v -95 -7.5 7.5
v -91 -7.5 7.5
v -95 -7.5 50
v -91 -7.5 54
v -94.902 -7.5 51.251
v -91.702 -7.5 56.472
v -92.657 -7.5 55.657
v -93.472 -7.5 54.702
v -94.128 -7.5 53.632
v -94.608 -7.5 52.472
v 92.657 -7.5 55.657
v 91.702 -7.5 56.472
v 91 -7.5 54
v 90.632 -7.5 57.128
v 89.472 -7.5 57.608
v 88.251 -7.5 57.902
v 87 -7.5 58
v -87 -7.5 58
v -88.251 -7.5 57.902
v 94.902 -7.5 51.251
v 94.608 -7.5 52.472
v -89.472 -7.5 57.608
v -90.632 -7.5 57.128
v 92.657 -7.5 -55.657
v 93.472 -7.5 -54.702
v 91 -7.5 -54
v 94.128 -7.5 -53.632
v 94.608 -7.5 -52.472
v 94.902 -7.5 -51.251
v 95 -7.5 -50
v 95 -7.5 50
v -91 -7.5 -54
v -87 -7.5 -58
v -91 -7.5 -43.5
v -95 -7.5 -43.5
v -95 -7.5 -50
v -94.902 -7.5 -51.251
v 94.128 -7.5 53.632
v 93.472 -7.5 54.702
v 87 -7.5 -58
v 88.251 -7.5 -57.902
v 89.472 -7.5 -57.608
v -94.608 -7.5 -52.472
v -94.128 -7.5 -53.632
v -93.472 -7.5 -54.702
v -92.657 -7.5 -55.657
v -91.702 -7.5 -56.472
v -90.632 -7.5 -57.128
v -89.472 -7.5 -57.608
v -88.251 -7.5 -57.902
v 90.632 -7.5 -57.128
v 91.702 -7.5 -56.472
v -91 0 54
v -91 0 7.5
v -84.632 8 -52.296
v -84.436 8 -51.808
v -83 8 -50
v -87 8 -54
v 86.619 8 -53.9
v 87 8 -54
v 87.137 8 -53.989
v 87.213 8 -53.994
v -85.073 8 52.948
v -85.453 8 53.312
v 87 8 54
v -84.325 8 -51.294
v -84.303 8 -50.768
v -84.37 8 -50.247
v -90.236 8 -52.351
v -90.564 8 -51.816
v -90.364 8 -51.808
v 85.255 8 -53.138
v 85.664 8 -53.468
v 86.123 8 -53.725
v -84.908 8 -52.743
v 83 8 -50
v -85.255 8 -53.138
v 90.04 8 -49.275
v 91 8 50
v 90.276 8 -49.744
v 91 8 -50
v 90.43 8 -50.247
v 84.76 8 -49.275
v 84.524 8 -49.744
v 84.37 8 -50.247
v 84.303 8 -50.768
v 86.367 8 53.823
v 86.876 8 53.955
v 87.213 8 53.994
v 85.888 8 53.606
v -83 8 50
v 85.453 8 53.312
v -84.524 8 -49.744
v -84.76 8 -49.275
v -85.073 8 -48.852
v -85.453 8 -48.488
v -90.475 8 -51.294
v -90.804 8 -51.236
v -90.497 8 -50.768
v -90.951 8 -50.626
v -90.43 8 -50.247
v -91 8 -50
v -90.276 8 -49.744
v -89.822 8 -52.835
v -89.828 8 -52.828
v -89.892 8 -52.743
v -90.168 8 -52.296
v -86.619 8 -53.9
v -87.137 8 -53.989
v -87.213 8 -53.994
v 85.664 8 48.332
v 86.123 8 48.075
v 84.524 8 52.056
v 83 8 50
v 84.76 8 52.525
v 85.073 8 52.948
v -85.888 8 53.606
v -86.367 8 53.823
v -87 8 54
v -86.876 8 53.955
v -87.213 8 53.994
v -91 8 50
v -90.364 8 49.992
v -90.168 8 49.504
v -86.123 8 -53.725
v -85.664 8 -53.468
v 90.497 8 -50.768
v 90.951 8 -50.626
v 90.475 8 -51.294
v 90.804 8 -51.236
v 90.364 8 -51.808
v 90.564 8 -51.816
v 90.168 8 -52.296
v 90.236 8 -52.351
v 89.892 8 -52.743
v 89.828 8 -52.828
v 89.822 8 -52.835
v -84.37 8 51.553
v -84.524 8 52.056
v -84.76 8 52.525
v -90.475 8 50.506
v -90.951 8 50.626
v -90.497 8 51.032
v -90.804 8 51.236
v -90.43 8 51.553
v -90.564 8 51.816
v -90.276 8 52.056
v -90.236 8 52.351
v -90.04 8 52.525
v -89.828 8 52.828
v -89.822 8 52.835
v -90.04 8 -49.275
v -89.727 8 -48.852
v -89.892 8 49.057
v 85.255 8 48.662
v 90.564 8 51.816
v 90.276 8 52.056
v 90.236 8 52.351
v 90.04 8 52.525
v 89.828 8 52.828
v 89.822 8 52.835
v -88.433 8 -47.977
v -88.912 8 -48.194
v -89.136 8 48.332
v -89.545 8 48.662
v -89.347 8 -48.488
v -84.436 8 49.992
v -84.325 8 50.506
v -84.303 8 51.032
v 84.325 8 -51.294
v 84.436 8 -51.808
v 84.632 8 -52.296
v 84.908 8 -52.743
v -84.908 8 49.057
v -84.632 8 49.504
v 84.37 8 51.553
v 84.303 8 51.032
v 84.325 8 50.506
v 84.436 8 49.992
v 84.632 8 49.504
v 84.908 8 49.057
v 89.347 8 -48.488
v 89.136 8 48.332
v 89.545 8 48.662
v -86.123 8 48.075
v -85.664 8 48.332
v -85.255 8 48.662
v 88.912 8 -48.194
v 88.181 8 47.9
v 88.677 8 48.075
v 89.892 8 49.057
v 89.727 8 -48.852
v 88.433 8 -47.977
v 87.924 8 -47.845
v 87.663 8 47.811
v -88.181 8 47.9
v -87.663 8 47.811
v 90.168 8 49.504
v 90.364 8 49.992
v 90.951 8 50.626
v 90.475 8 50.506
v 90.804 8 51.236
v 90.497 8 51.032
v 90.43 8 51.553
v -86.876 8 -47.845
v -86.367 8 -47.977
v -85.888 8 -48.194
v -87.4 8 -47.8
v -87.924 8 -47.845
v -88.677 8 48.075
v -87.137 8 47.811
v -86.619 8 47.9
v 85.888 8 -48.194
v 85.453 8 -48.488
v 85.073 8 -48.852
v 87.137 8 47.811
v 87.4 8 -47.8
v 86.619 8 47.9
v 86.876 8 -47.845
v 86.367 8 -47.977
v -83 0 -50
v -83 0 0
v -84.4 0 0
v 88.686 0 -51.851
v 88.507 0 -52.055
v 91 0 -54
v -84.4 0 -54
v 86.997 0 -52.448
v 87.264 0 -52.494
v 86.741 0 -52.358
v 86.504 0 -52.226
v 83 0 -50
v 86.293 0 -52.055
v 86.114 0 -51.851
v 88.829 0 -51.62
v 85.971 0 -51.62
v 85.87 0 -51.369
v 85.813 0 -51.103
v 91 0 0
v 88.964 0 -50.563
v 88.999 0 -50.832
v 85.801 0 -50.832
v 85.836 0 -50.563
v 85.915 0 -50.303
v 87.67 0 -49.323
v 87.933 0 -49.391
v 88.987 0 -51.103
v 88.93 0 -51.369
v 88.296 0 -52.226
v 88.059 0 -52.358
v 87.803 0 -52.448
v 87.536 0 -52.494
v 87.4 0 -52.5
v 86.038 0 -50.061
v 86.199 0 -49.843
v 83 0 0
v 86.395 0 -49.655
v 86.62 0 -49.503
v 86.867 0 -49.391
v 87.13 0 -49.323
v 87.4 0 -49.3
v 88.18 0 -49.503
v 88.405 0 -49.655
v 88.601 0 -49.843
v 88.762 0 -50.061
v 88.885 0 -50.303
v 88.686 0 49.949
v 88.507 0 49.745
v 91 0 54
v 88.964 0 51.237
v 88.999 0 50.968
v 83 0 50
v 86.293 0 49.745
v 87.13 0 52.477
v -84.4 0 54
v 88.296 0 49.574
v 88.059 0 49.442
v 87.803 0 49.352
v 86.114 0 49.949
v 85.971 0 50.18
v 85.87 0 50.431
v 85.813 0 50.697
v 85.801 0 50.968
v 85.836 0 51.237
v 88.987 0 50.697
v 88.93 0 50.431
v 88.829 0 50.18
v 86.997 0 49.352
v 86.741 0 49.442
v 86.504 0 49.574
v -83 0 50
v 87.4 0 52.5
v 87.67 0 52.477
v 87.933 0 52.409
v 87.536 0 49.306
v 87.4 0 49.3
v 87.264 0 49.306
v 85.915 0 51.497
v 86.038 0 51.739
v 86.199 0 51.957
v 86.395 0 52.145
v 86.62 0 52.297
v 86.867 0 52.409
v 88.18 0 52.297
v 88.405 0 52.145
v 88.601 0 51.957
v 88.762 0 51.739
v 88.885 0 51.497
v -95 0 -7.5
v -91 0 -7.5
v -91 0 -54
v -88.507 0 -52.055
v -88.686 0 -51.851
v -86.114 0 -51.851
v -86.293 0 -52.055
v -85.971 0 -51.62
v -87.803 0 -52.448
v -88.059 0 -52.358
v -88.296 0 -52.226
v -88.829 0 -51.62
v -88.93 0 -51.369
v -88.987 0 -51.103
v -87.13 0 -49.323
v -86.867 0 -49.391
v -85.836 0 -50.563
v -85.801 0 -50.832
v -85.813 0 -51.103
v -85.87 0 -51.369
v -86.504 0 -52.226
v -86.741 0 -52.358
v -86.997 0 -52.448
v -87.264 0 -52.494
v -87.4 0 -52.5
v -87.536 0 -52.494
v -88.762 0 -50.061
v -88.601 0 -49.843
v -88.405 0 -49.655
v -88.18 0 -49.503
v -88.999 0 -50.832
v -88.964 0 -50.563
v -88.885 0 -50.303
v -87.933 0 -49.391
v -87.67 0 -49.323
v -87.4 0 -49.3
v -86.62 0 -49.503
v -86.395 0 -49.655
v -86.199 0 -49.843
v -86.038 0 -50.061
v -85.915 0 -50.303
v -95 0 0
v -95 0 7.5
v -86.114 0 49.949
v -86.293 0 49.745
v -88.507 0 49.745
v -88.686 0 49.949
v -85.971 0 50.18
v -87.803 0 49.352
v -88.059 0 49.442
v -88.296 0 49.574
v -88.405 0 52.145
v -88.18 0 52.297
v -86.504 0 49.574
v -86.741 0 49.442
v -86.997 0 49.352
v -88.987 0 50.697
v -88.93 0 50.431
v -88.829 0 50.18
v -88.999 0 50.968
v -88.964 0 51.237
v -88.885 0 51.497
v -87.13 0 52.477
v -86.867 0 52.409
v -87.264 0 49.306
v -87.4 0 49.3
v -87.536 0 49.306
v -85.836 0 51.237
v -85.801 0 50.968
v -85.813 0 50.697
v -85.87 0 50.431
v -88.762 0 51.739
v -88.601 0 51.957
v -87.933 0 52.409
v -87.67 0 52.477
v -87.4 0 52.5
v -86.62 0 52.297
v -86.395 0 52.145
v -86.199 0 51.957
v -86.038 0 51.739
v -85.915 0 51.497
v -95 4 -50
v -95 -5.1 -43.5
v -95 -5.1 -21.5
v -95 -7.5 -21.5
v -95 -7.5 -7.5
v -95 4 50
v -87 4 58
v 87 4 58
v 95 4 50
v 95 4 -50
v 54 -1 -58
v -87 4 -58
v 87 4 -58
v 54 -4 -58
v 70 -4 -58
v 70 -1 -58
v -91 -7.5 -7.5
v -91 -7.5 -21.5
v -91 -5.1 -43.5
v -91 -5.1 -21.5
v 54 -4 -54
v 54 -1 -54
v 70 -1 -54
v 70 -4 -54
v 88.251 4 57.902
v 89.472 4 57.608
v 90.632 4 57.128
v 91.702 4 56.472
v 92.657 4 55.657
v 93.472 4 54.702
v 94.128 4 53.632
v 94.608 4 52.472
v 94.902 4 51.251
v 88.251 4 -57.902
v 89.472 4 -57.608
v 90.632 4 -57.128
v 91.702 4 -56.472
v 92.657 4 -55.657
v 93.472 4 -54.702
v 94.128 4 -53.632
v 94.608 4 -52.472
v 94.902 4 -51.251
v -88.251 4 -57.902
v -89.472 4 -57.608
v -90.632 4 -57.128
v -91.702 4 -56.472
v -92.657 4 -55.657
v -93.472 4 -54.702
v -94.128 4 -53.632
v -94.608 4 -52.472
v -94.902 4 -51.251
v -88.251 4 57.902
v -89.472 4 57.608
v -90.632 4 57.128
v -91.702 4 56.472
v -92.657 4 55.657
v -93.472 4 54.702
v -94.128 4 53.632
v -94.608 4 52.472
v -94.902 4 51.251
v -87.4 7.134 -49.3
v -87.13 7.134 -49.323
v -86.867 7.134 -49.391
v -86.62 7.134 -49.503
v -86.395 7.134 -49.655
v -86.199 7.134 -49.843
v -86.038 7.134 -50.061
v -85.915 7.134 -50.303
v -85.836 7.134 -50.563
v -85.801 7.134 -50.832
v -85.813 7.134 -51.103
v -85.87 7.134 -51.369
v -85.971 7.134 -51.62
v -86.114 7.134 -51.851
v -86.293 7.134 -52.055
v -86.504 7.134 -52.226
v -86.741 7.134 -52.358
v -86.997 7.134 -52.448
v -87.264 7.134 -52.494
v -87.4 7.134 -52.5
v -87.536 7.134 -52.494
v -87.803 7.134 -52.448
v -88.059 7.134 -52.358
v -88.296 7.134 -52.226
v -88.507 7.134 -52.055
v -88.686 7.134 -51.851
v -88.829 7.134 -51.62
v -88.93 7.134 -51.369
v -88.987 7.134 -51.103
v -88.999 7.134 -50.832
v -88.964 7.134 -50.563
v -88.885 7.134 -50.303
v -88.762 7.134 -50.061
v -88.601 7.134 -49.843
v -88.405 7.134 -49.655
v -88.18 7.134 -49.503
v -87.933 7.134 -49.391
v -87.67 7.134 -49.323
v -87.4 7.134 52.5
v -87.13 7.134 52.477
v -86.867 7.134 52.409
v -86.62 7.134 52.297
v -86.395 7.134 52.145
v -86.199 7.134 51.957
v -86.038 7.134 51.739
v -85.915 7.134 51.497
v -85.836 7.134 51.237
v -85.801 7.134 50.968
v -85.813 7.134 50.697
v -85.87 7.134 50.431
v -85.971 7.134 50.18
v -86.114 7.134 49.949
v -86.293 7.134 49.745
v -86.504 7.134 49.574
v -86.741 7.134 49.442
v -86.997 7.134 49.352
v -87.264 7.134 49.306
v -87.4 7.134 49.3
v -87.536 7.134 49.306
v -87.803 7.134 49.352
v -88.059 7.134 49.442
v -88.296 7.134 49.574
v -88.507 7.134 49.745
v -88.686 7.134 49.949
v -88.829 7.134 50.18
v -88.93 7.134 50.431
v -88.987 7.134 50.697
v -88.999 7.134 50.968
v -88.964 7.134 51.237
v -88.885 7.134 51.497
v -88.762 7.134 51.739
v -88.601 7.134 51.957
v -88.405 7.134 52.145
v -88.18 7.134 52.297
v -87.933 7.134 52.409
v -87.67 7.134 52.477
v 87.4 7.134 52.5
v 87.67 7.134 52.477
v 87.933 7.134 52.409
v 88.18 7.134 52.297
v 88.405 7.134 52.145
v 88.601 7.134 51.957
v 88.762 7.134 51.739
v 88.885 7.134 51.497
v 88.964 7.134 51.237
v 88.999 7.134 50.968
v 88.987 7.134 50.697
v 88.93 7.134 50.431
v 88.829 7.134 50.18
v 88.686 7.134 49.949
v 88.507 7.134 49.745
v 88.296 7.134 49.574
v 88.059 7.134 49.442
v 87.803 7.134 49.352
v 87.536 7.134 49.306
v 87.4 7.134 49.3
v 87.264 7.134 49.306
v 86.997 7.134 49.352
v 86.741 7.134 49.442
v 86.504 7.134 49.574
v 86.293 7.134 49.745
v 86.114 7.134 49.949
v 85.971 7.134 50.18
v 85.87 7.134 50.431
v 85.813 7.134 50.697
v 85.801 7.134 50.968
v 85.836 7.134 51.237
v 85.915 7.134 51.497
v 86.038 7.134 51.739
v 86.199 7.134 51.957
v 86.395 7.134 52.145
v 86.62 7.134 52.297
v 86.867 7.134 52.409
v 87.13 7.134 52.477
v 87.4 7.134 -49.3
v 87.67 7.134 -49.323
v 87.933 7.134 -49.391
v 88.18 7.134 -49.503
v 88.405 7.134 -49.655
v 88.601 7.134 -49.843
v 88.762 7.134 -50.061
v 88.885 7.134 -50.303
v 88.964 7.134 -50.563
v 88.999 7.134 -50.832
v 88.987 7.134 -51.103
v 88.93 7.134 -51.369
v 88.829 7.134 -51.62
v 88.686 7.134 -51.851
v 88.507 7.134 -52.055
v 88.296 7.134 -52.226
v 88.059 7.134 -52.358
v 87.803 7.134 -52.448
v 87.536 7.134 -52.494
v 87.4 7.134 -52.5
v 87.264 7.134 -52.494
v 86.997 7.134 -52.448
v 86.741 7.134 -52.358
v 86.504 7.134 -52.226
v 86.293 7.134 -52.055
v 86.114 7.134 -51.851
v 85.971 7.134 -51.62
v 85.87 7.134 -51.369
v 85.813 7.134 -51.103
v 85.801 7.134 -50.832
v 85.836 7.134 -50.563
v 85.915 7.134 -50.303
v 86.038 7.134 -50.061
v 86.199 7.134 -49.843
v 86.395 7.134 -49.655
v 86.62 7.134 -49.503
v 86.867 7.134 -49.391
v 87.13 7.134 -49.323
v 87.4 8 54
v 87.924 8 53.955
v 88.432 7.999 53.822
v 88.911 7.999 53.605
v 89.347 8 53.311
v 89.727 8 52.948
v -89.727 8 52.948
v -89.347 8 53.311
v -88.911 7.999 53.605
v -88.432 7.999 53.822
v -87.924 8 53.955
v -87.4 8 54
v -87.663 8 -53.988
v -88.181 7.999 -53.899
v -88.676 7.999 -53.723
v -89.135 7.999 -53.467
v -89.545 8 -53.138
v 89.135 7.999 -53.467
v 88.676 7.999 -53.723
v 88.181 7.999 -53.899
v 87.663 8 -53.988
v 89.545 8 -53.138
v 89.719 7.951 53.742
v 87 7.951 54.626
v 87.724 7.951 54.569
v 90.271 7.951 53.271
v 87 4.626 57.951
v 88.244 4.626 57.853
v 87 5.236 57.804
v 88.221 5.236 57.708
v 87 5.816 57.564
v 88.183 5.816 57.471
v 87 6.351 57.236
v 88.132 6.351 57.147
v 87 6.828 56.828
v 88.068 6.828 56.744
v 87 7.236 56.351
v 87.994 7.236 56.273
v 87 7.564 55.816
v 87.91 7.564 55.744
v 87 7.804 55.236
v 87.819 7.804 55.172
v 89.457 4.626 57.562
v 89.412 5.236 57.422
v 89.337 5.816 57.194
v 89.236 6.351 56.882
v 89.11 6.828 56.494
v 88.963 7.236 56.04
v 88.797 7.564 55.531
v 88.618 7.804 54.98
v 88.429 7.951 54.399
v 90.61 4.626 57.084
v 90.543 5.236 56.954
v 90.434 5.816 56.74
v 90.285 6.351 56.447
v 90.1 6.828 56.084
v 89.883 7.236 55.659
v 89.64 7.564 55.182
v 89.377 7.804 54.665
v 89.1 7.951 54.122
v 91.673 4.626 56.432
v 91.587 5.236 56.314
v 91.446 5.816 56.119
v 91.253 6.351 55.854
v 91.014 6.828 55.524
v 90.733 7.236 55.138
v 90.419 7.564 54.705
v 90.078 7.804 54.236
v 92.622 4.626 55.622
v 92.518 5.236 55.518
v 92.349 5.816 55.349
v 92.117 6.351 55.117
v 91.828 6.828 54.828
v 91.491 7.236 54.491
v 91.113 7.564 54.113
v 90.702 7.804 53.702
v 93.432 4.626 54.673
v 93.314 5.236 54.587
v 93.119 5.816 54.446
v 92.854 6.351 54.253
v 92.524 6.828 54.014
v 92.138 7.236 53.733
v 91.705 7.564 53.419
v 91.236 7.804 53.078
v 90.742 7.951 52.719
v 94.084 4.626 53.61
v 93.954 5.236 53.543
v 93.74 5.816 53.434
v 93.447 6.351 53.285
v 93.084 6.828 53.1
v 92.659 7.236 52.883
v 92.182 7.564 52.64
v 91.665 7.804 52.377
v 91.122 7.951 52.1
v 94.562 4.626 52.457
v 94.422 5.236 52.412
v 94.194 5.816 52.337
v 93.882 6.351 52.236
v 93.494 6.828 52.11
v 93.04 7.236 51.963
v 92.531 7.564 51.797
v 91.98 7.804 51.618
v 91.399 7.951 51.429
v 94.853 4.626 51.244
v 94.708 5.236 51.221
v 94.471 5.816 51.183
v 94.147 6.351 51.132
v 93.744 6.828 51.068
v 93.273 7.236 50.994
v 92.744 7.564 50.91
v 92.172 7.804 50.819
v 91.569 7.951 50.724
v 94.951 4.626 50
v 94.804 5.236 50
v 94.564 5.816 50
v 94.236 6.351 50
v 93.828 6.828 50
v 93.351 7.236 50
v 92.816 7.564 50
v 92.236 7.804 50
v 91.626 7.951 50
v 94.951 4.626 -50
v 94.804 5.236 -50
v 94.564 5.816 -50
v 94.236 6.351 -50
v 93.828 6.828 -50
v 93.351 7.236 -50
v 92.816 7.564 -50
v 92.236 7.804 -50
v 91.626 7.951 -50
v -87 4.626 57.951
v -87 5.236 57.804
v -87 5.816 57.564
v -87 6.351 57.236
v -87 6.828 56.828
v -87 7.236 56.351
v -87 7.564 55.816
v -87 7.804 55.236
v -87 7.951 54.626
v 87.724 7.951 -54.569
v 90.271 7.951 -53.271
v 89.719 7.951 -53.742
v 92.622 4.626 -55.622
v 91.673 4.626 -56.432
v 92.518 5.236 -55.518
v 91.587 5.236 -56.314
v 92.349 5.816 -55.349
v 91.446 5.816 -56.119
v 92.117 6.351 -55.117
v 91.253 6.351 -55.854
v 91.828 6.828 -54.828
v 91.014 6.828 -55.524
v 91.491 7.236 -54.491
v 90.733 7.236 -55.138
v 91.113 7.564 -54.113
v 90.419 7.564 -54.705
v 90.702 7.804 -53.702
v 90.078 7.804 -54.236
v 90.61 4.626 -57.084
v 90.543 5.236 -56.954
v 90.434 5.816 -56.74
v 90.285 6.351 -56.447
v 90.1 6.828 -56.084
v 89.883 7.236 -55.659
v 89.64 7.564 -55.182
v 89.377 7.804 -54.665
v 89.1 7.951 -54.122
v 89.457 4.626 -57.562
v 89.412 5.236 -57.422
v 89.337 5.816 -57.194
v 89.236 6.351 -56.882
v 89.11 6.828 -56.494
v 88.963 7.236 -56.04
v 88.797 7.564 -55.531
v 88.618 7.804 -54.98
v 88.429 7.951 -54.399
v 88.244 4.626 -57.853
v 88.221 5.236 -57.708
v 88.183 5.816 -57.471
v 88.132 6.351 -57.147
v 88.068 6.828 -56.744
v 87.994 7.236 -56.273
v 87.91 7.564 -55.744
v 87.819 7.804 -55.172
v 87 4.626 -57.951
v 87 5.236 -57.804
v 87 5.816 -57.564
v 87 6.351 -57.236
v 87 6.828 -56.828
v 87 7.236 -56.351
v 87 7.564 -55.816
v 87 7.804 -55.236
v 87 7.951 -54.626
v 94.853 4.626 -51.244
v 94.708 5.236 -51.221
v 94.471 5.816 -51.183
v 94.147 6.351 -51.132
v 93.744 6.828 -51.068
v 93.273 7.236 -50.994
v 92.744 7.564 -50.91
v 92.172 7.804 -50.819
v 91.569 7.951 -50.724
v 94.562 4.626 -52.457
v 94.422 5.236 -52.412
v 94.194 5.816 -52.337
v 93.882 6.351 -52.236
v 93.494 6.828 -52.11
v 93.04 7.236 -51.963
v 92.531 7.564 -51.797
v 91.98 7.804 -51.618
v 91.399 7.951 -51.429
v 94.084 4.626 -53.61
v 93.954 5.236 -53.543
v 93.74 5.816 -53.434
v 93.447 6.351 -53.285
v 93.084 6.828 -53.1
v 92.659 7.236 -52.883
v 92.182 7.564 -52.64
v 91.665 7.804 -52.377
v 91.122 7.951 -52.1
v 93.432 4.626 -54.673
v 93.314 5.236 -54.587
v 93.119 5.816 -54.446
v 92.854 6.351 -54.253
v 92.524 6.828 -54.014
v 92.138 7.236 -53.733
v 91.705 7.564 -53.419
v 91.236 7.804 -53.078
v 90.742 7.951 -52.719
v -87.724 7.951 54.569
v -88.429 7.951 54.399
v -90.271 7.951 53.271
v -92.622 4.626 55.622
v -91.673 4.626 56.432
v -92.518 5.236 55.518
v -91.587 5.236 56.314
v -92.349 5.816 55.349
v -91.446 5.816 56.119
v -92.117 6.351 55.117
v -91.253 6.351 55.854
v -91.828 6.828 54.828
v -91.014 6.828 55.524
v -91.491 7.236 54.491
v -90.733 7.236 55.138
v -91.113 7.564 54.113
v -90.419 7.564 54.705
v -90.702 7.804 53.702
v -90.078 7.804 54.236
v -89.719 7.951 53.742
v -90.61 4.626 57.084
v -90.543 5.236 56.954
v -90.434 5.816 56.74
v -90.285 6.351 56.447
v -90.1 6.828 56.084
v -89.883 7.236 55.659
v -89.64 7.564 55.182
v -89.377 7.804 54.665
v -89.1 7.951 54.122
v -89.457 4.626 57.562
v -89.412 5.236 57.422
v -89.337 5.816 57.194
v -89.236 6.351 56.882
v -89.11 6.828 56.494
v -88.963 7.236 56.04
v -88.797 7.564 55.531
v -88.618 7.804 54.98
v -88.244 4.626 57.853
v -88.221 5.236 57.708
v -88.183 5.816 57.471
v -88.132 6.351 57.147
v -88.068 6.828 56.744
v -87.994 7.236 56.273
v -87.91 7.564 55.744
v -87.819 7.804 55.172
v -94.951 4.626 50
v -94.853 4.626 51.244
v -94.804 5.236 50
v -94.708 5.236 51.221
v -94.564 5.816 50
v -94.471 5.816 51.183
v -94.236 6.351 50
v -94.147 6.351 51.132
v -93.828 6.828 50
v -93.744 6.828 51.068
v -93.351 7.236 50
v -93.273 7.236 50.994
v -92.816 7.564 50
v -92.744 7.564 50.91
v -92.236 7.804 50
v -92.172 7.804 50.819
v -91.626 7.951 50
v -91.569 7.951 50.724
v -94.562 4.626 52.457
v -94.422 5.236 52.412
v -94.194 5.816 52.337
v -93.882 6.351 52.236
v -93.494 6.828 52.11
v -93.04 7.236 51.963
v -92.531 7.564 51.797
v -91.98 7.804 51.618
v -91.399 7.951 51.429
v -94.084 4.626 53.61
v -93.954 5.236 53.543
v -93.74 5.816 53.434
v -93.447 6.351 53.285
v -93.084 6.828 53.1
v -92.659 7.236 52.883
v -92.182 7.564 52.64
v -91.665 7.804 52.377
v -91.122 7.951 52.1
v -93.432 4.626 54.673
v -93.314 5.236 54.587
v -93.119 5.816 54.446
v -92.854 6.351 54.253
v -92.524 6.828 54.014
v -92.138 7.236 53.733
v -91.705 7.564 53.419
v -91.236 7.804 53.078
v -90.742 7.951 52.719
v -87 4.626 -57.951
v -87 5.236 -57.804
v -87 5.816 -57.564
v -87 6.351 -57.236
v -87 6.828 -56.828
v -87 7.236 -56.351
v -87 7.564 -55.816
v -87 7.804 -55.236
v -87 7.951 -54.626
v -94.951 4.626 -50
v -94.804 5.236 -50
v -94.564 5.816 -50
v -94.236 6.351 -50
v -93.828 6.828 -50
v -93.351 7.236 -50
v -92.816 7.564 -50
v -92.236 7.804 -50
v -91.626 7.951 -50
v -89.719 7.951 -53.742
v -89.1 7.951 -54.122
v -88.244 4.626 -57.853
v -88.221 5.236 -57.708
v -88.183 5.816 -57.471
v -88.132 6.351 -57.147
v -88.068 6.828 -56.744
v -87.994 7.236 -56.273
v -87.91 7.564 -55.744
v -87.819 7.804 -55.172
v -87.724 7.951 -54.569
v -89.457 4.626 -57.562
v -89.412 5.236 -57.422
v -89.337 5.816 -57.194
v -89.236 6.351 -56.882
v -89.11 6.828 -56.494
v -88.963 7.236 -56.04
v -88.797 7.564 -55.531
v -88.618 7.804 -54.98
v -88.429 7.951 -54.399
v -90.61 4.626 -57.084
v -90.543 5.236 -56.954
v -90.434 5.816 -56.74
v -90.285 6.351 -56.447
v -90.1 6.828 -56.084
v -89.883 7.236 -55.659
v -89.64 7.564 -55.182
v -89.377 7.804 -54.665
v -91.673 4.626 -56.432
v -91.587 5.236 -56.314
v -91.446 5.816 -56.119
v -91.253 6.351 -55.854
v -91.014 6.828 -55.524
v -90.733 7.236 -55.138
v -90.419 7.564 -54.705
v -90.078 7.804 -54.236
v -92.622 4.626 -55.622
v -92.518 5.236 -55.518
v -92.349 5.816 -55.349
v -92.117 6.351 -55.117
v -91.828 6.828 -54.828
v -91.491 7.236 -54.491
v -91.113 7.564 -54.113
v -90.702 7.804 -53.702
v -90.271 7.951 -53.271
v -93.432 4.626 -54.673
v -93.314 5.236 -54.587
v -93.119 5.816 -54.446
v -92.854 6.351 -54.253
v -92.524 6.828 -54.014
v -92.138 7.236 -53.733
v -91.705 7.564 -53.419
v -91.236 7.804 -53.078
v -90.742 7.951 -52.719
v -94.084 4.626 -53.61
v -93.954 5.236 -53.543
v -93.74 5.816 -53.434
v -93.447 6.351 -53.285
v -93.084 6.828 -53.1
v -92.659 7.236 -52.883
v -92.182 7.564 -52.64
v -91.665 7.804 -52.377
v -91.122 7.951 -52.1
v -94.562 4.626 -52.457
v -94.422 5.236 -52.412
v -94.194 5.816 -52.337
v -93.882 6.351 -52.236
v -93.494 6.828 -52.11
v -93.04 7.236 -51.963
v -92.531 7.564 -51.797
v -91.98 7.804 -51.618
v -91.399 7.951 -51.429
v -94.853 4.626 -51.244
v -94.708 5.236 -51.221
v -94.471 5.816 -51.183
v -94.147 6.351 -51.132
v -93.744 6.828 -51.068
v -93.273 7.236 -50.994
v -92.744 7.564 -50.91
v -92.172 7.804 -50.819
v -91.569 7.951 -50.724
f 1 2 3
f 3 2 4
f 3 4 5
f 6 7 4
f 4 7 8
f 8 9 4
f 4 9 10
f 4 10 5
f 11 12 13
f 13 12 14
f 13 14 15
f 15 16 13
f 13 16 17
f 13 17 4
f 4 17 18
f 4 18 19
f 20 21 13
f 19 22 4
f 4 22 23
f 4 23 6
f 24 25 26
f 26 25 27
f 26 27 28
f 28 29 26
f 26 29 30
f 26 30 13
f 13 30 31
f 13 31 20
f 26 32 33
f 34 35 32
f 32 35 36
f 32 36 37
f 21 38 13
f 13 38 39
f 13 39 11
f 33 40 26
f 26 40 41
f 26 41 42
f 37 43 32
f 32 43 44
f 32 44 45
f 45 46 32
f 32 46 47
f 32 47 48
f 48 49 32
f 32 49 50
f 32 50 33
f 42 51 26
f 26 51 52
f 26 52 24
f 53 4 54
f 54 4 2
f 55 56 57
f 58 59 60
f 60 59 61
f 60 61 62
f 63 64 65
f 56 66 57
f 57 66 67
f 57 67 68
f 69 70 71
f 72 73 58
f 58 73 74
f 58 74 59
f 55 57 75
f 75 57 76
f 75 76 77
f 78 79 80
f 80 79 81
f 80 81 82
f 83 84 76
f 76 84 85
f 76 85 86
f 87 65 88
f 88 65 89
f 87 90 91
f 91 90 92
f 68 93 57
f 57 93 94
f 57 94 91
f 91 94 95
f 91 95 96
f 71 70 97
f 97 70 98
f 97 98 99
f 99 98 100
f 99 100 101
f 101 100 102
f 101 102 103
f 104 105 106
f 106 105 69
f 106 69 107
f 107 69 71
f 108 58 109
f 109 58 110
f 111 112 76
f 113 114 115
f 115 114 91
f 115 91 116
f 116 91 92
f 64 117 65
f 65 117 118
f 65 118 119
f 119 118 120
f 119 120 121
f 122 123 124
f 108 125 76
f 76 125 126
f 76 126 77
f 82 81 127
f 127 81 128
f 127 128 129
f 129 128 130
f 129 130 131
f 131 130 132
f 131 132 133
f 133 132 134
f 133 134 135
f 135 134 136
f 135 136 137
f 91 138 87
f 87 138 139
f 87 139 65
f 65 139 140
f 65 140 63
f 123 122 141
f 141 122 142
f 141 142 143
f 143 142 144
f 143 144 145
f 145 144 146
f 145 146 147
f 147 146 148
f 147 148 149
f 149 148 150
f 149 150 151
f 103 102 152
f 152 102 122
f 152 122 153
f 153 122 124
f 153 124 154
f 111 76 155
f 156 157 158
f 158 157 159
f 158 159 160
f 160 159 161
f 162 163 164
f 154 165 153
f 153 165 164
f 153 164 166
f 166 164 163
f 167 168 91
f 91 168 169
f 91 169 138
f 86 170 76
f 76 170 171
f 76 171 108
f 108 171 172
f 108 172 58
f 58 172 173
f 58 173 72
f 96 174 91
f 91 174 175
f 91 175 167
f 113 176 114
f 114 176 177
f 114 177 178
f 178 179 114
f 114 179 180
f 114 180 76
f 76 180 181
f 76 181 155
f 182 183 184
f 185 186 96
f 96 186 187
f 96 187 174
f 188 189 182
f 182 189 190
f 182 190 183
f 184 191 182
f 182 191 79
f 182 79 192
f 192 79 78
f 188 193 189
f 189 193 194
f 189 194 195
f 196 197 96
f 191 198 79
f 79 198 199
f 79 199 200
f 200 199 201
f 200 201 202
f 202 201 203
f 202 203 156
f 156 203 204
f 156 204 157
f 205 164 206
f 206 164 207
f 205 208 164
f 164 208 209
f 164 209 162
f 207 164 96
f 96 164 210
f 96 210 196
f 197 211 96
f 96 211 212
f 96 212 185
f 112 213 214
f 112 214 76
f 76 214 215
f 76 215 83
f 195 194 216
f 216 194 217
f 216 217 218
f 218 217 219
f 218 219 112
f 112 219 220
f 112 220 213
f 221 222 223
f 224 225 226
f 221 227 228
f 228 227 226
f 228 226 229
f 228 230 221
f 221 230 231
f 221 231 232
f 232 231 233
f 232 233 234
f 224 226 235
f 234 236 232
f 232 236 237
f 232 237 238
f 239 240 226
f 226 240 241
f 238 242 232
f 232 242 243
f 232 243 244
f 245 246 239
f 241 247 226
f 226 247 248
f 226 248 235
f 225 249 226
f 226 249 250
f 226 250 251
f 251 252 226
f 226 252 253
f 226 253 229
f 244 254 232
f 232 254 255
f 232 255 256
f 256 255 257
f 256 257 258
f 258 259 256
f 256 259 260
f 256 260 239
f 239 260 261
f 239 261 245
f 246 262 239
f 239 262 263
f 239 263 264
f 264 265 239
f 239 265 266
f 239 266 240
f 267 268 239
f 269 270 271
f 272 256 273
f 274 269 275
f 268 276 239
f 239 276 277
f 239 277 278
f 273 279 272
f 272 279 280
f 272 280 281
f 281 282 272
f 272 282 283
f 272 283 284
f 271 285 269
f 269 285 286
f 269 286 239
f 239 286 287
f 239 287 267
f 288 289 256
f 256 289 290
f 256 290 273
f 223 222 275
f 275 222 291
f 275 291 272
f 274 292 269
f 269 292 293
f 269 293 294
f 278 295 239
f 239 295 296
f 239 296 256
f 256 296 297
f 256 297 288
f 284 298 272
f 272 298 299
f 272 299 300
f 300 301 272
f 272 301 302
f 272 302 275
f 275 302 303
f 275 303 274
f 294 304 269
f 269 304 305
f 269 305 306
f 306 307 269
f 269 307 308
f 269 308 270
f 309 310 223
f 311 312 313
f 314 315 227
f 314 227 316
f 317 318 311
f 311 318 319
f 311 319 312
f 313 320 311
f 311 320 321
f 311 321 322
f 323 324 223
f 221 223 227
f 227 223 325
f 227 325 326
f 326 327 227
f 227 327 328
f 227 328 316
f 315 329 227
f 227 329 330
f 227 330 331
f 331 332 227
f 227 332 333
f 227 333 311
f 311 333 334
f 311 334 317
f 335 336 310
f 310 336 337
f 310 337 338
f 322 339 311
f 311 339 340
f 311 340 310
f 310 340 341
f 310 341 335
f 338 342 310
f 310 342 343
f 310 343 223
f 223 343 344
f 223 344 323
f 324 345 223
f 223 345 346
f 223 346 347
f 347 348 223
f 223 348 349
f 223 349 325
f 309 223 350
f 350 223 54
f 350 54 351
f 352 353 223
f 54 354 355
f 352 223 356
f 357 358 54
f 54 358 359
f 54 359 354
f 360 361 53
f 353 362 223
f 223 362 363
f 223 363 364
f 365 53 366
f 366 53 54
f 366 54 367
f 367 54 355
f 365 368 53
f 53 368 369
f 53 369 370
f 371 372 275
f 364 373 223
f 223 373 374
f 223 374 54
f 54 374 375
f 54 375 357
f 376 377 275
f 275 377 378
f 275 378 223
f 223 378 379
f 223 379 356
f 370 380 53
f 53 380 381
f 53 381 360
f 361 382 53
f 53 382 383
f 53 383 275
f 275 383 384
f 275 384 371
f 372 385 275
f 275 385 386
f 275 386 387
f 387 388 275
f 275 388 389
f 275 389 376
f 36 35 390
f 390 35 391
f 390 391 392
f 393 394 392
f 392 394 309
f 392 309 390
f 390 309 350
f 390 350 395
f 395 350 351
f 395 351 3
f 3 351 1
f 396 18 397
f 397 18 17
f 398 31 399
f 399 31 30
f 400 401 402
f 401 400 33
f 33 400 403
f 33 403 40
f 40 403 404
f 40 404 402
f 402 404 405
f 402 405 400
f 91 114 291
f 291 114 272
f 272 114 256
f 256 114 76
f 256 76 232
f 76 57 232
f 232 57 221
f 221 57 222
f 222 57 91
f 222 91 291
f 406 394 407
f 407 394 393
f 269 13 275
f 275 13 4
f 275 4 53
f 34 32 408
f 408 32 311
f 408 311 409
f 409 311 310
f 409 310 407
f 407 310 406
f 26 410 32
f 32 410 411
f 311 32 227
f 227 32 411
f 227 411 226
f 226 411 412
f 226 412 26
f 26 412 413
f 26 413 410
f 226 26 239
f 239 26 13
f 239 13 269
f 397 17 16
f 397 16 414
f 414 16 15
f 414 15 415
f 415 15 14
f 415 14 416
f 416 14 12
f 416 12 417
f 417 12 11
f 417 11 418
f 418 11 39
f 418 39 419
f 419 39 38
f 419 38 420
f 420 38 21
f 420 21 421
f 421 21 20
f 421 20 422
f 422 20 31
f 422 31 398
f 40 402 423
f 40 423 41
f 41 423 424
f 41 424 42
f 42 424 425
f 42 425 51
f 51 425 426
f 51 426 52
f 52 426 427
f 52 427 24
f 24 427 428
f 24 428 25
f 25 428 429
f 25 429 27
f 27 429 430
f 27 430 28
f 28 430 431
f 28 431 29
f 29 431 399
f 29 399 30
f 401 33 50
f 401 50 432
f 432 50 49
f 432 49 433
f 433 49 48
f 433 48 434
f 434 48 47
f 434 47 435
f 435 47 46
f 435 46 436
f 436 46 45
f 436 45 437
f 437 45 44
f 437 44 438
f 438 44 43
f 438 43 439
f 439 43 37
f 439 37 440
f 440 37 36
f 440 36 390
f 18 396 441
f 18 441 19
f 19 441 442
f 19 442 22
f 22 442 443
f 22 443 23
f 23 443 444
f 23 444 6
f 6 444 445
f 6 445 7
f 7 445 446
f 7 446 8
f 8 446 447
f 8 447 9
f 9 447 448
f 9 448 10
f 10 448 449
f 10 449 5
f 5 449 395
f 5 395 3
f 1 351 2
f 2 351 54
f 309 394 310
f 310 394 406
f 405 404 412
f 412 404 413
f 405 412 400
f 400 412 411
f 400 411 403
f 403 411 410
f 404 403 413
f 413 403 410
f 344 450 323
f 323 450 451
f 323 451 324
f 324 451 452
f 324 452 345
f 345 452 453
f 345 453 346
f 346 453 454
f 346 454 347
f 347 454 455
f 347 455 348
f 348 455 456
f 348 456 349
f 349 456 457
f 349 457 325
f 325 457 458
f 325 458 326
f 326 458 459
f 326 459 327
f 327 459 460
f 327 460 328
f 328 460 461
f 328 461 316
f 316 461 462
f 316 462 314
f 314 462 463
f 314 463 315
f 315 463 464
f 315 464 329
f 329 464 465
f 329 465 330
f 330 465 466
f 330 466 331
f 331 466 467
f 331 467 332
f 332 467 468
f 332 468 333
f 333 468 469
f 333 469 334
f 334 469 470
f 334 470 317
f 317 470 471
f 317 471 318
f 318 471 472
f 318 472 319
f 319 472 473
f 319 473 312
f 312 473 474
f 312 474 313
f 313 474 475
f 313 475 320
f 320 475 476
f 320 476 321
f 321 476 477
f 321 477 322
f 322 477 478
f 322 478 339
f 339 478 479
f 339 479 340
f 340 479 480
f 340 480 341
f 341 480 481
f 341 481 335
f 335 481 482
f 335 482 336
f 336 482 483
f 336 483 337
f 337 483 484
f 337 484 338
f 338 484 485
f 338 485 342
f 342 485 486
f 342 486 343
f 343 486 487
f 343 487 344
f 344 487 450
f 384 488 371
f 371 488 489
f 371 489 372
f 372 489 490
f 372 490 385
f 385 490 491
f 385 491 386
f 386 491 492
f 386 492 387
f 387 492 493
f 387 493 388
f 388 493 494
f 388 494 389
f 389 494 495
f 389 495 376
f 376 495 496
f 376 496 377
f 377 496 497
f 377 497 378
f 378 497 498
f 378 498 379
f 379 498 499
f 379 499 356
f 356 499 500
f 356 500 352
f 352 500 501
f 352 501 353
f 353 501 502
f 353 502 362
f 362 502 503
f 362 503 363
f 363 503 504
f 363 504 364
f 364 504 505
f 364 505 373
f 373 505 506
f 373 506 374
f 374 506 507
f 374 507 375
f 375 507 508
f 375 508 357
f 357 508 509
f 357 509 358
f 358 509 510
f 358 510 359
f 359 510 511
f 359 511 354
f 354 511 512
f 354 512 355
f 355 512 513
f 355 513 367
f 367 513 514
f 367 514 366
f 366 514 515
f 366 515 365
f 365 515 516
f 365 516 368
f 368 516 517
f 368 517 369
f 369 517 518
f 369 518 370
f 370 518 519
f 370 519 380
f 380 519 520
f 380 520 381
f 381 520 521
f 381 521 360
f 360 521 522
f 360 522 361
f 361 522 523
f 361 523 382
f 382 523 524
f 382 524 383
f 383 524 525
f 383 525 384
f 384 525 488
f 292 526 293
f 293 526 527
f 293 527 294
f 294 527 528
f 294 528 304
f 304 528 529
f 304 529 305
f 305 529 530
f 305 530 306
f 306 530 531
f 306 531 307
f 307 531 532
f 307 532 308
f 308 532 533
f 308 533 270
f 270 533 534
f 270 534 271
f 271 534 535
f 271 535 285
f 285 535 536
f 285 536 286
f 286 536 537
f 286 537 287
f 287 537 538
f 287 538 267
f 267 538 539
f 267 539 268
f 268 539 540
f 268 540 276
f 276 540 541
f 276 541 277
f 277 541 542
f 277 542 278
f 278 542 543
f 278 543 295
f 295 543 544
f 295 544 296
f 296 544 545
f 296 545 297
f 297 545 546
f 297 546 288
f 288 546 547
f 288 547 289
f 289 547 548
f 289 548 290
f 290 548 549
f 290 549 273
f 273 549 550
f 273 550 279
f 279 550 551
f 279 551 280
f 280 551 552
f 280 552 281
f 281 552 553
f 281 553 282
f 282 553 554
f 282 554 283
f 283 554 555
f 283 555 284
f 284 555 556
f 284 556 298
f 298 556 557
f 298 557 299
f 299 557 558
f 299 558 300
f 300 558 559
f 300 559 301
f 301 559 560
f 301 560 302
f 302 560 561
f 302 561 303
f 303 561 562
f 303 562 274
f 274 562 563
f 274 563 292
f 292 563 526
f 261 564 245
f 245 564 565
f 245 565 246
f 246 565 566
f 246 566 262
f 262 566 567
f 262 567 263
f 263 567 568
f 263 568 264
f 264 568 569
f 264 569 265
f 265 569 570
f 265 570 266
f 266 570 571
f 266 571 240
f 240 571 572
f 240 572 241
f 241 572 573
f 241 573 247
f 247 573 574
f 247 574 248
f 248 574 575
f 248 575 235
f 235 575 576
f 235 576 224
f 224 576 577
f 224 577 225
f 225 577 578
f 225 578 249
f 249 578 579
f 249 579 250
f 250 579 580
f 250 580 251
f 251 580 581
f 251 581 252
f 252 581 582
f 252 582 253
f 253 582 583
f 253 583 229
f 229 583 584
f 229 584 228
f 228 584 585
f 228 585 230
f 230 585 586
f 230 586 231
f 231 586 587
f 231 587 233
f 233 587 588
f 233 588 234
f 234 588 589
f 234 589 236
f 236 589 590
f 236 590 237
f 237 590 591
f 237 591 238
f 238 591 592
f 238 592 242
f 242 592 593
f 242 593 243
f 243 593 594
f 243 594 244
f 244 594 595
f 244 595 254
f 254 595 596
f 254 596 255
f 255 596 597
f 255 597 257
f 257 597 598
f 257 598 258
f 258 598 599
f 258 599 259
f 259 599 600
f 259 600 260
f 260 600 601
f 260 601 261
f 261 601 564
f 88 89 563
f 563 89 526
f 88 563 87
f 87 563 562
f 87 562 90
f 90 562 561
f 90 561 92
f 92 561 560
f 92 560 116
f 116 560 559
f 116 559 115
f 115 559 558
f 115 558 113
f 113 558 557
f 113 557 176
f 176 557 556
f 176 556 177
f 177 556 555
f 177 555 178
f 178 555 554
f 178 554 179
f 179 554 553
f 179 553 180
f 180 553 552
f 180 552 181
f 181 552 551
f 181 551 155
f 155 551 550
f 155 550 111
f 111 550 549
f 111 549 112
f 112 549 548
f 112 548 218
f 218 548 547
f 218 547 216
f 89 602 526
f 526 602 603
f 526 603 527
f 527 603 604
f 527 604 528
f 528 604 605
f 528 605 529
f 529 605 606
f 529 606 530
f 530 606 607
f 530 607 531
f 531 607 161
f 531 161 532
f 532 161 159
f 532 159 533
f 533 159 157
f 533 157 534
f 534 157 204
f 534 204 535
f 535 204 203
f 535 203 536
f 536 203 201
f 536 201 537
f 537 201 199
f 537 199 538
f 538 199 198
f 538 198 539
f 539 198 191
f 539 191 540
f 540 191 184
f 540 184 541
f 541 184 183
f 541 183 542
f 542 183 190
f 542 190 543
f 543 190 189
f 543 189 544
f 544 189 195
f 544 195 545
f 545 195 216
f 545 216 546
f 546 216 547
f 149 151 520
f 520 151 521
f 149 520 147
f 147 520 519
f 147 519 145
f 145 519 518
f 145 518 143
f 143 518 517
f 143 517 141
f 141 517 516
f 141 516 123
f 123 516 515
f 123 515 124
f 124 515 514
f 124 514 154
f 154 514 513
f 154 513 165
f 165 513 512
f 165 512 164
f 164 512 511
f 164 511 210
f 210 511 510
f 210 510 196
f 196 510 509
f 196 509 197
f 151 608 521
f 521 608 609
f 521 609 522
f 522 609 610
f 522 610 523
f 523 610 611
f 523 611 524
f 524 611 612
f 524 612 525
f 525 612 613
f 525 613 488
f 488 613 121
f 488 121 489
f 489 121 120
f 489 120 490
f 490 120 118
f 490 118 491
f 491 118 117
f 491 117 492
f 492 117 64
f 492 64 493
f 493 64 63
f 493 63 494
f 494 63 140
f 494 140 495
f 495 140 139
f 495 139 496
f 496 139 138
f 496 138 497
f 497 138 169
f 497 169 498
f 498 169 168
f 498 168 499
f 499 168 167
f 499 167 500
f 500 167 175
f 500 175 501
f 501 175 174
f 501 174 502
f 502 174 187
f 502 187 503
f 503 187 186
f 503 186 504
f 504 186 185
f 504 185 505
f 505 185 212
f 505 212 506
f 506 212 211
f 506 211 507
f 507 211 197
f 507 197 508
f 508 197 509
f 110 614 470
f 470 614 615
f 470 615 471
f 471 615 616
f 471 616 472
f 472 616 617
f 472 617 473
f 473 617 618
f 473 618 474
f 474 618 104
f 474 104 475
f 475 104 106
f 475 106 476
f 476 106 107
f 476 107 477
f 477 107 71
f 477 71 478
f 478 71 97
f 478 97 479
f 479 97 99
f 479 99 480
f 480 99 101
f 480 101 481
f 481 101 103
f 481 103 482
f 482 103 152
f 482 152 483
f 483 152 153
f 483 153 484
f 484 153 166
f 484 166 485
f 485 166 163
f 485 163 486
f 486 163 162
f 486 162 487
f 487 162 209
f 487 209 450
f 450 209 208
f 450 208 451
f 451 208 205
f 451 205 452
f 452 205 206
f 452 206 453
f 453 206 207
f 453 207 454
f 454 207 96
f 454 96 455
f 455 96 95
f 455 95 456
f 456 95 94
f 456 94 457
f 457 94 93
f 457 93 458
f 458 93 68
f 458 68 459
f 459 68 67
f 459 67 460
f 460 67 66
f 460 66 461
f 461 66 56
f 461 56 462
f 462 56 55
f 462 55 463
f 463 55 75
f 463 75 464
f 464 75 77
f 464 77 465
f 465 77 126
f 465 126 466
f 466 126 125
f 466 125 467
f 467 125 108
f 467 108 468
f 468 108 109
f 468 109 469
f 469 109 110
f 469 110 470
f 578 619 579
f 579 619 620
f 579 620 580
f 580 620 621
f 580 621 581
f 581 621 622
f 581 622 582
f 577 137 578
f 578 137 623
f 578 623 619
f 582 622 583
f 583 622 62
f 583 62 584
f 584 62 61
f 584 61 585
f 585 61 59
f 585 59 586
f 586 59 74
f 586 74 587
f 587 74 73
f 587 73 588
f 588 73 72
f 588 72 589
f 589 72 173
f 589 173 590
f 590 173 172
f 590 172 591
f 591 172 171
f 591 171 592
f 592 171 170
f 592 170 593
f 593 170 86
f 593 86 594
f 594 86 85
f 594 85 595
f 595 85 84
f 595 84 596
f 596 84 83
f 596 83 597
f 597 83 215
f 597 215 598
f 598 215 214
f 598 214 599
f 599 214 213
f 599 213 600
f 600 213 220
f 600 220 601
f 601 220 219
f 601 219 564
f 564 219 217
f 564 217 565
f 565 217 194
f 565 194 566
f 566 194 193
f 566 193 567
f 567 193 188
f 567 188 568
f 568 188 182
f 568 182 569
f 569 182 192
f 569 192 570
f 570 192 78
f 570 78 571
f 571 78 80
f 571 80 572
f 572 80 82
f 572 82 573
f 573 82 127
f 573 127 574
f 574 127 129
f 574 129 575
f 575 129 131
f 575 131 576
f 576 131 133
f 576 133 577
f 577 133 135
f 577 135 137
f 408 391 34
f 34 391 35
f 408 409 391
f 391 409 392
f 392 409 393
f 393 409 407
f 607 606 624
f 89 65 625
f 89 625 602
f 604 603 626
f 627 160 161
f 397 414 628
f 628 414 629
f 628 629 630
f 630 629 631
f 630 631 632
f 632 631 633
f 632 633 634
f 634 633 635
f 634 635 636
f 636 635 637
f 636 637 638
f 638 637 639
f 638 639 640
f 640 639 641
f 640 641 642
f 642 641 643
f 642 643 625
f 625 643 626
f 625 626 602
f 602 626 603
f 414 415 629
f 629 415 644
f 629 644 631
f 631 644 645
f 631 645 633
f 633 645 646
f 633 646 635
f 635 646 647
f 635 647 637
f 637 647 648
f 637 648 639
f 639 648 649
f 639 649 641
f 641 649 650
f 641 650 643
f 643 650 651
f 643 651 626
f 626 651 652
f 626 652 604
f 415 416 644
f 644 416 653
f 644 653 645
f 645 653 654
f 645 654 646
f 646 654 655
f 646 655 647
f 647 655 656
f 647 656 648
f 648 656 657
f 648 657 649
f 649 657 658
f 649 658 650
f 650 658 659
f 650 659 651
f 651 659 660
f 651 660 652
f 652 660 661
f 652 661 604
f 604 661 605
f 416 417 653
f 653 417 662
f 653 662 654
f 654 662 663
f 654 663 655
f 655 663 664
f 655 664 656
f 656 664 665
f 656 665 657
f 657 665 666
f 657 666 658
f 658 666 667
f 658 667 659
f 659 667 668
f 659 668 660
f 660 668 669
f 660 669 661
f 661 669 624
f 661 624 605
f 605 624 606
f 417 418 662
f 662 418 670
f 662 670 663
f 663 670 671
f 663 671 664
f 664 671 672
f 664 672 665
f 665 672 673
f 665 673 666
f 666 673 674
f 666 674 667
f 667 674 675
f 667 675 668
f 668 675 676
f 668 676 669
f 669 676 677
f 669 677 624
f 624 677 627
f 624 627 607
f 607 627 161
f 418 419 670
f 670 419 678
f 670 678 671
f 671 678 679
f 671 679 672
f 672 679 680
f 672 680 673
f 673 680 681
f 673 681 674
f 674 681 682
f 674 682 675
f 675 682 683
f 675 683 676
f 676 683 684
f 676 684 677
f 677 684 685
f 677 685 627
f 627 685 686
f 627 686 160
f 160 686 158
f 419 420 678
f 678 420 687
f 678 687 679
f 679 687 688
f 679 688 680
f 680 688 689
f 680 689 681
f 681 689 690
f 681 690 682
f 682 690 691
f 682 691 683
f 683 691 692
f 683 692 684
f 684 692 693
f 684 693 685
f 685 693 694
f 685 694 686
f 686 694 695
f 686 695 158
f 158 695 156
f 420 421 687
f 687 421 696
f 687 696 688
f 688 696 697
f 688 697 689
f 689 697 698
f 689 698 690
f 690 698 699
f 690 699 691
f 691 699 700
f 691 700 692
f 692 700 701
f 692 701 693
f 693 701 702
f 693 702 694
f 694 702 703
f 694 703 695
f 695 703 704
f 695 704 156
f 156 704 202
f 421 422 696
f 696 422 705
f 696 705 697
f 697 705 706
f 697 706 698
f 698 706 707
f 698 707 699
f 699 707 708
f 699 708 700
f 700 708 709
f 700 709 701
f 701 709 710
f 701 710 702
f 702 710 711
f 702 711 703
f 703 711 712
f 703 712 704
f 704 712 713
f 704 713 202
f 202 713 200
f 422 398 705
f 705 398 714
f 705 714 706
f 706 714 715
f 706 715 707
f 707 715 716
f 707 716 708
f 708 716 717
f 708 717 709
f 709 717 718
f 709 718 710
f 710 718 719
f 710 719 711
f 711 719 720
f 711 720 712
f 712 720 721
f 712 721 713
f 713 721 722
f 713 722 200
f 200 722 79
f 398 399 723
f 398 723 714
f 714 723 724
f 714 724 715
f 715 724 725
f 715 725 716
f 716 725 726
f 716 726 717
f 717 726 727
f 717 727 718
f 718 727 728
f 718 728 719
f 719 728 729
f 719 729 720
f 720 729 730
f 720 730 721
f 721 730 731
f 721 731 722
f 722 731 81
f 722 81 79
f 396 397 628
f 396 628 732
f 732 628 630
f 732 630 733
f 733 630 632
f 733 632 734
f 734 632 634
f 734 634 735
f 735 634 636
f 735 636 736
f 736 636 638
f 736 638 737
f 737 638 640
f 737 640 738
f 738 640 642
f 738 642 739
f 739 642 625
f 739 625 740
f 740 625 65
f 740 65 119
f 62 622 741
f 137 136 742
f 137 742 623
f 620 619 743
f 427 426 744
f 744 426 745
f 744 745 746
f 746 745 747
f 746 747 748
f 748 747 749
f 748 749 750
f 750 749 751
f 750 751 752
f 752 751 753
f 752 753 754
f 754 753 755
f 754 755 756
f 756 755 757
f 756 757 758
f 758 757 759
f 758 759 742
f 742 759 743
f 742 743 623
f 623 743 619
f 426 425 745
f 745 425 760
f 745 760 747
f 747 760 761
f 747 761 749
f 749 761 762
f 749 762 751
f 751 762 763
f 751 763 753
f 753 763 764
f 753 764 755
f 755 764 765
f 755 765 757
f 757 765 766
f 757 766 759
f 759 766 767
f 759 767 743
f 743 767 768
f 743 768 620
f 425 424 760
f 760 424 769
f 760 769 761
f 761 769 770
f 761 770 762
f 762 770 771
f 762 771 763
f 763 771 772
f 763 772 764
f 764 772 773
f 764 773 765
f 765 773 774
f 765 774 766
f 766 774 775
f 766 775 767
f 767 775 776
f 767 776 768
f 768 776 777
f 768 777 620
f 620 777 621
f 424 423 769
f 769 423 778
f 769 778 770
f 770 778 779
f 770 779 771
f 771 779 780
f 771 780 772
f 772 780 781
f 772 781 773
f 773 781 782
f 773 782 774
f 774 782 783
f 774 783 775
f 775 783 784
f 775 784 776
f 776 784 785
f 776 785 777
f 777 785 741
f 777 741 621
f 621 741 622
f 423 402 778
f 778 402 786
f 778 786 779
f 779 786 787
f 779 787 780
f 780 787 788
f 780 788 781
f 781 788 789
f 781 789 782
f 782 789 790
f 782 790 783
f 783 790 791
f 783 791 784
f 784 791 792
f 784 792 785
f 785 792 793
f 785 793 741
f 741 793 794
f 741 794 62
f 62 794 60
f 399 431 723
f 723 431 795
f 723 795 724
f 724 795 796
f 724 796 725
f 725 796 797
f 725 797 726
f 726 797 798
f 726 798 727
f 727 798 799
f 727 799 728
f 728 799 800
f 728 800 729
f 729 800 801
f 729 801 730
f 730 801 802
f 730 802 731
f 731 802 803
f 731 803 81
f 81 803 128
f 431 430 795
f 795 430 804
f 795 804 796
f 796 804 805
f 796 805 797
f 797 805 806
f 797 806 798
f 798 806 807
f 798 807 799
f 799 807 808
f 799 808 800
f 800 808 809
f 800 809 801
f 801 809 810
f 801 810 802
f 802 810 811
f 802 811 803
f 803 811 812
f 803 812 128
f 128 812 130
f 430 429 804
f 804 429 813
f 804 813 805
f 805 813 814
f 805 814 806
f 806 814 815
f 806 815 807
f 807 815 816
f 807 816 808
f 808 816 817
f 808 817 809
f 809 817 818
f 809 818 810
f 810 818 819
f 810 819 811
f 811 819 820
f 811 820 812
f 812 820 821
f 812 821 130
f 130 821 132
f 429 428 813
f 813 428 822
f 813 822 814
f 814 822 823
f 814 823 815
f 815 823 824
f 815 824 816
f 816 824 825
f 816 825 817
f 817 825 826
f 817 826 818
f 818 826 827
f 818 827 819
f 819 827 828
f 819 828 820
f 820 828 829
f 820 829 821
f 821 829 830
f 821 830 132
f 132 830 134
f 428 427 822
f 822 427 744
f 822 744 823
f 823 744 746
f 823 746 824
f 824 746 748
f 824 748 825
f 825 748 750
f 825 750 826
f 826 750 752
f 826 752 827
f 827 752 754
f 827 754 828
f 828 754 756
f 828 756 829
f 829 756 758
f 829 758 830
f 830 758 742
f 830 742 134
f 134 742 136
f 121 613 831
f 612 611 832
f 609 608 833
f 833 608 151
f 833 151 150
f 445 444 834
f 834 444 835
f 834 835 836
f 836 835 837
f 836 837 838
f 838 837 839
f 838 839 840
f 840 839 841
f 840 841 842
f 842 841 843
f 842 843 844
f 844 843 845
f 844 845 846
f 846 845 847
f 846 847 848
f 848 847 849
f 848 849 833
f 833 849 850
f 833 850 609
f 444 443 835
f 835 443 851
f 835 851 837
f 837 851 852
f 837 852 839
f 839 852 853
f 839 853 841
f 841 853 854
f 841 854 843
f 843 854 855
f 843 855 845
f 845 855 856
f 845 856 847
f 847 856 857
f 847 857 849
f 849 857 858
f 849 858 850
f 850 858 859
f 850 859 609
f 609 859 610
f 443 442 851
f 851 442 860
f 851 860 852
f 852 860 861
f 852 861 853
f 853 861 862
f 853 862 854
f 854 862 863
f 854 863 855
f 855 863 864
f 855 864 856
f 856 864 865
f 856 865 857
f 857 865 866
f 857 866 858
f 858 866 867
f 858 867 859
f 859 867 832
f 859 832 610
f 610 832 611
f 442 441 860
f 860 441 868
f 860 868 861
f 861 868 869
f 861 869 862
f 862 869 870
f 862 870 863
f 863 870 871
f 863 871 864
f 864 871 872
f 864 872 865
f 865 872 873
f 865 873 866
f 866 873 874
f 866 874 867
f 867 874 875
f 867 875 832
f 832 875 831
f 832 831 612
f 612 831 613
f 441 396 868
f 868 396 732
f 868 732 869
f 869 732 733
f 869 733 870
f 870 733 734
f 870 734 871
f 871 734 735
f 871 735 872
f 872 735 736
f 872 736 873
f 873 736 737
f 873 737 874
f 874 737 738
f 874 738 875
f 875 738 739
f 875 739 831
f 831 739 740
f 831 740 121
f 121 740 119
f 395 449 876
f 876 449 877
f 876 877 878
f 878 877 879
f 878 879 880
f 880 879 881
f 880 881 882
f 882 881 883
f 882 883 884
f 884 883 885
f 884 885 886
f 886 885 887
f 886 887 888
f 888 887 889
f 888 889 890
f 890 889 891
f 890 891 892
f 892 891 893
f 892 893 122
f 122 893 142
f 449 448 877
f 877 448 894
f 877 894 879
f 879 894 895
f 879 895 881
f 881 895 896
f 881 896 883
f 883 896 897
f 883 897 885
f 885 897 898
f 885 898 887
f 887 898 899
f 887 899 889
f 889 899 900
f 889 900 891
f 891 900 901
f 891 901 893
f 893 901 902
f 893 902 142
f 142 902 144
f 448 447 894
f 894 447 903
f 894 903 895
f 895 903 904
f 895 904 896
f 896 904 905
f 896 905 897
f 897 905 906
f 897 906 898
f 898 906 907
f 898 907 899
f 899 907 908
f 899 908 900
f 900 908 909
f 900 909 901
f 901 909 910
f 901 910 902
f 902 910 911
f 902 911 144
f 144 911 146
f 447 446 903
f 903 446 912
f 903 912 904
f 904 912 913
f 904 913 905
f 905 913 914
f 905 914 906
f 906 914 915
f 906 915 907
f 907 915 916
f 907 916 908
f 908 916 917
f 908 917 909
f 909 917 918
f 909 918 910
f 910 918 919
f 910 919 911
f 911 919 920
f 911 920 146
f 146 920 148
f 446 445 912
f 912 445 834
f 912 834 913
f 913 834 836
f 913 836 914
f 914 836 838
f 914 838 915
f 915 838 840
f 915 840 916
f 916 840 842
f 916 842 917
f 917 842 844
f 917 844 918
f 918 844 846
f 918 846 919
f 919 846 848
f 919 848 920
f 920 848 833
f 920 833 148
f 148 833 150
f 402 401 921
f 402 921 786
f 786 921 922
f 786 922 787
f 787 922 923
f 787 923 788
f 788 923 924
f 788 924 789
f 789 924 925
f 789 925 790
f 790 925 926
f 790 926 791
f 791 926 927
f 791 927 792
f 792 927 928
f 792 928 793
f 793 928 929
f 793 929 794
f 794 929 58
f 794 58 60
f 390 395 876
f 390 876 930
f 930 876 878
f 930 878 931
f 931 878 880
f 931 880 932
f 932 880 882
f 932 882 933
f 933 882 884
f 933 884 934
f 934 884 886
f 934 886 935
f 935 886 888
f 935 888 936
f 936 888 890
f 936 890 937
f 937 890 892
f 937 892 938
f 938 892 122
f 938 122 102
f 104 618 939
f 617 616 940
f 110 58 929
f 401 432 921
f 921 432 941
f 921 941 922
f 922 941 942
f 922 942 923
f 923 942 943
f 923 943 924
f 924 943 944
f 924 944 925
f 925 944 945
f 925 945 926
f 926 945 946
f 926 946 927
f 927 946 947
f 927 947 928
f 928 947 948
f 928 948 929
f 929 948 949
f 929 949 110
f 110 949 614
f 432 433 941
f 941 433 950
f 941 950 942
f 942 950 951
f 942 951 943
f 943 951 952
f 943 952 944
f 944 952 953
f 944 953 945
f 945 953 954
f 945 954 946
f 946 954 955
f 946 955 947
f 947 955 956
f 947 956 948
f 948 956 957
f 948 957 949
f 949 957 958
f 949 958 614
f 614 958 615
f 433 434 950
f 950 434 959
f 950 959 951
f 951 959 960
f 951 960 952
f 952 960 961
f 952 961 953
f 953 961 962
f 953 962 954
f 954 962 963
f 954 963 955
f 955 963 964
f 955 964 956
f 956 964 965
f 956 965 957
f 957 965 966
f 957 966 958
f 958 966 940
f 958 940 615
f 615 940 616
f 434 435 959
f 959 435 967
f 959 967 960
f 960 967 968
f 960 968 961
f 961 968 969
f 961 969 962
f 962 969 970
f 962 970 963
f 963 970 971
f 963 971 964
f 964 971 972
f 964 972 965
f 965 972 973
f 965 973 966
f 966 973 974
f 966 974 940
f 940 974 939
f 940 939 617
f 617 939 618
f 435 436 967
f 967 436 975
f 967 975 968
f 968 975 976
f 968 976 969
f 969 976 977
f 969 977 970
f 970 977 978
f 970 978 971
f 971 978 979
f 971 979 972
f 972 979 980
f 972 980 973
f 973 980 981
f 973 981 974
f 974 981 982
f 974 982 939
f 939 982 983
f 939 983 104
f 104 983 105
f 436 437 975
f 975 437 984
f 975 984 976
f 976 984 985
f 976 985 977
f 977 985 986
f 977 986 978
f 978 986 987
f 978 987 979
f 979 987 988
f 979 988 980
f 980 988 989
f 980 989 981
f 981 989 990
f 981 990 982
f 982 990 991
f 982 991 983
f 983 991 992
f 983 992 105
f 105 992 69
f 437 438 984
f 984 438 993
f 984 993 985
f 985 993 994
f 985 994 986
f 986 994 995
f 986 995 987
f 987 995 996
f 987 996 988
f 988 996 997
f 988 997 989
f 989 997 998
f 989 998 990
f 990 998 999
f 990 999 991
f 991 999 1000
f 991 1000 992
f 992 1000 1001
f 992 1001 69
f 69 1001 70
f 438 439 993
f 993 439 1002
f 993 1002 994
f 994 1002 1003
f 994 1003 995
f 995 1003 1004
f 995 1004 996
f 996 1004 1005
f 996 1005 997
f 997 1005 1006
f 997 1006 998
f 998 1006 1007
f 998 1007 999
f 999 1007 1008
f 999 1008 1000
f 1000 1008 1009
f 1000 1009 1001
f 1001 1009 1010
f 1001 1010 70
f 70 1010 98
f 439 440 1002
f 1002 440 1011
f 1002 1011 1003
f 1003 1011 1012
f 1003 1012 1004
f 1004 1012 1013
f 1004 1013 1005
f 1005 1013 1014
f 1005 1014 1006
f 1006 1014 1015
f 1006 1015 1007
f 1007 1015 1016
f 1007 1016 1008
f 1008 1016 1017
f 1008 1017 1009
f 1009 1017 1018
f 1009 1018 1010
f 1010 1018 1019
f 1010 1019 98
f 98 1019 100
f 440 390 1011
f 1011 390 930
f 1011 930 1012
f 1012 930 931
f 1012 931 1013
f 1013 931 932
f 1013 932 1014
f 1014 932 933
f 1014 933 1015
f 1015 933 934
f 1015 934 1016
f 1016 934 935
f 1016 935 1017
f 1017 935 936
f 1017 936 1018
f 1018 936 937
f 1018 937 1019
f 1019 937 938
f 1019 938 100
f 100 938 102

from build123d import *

# Parameters (mm, degrees)
SKETCH_1_W          = 190
SKETCH_1_H          = 116
SKETCH_1_W_2        = 166
SKETCH_1_H_2        = 100
EXTRUDE_2_DEPTH     = 8
SKETCH_2_W          = 190
SKETCH_2_H          = 116
SKETCH_2_W_2        = 182
SKETCH_2_H_2        = 108
EXTRUDE_3_DEPTH     = 7.5
FILLET_1_R          = 8
SKETCH_3_W          = 15
SKETCH_3_H          = 7.5
CUT_EXTRUDE_1_DEPTH = 7.5
SKETCH_4_W          = 16
SKETCH_4_H          = 3
CUT_EXTRUDE_2_DEPTH = 35.5
SKETCH_5_R          = 1.6
CUT_EXTRUDE_3_DEPTH = 35.5
CHAMFER_1_SIZE      = 1.5
CHAMFER_1_SIZE2     = 0.866025404
SKETCH_6_W          = 22
SKETCH_6_H          = 2.5
CUT_EXTRUDE_4_DEPTH = 4
FILLET_2_R          = 4


with BuildPart() as part:
    # 草图1 → 凸台-拉伸2 (new body)
    with BuildSketch(Plane(origin=(0, 0, 0), x_dir=(1, 0, 0), z_dir=(0, 1, 0))):
        Rectangle(SKETCH_1_W, SKETCH_1_H)
        Rectangle(SKETCH_1_W_2, SKETCH_1_H_2, mode=Mode.SUBTRACT)
    extrude(amount=EXTRUDE_2_DEPTH)

    # 草图2 → 凸台-拉伸3 (add)
    with BuildSketch(Plane.XZ):
        Rectangle(SKETCH_2_W, SKETCH_2_H)
        Rectangle(SKETCH_2_W_2, SKETCH_2_H_2, mode=Mode.SUBTRACT)
    extrude(amount=EXTRUDE_3_DEPTH)

    # 圆角1
    fillet_1_edges = [part.edges().sort_by_distance(p)[0] for p in [
        (-95, 0.25, 58),
        (95, 0.25, 58),
        (95, 0.25, -58),
        (-95, 0.25, -58),
    ]]
    fillet(fillet_1_edges, radius=FILLET_1_R)

    # 草图3 → 切除-拉伸1 (cut)
    with BuildSketch(Plane.ZY.offset(95)):
        with Locations((0, -3.75)):
            Rectangle(SKETCH_3_W, SKETCH_3_H)
    extrude(amount=-CUT_EXTRUDE_1_DEPTH, mode=Mode.SUBTRACT)

    # 草图4 → 切除-拉伸2 (cut)
    with BuildSketch(Plane(origin=(0, 0, -58), x_dir=(-1, 0, 0), z_dir=(0, 0, -1))):
        with Locations((-62, -2.5)):
            Rectangle(SKETCH_4_W, SKETCH_4_H)
    extrude(amount=-CUT_EXTRUDE_2_DEPTH, mode=Mode.SUBTRACT)

    # 草图5 → 切除-拉伸3 (cut)
    with BuildSketch(Plane(origin=(0, 8, 0), x_dir=(1, 0, 0), z_dir=(0, 1, 0))):
        with Locations(Location((-87.4, 50.9, 0), (0, 0, 270))):
            Circle(SKETCH_5_R)
        with Locations(Location((-87.4, -50.9, 0), (0, 0, 90))):
            Circle(SKETCH_5_R)
        with Locations(Location((87.4, -50.9, 0), (0, 0, 270))):
            Circle(SKETCH_5_R)
        with Locations(Location((87.4, 50.9, 0), (0, 0, 90))):
            Circle(SKETCH_5_R)
    extrude(amount=-CUT_EXTRUDE_3_DEPTH, mode=Mode.SUBTRACT)

    # 倒角1
    chamfer_1_edges = [part.edges().sort_by_distance(p)[0] for p in [
        (87.4, 8, -49.3),
        (87.4, 8, 49.3),
        (-87.4, 8, 52.5),
        (-87.4, 8, -52.5),
    ]]
    chamfer_1_side = [part.faces().sort_by_distance(p)[0] for p in [
        (0, 8, -55.773882303),
    ]]
    chamfer(chamfer_1_edges, length=CHAMFER_1_SIZE, length2=CHAMFER_1_SIZE2, reference=chamfer_1_side[0])

    # 草图6 → 切除-拉伸4 (cut)
    with BuildSketch(Plane.ZY.offset(95)):
        with Locations((-32.5, -6.35)):
            Rectangle(SKETCH_6_W, SKETCH_6_H)
    extrude(amount=-CUT_EXTRUDE_4_DEPTH, mode=Mode.SUBTRACT)

    # 圆角2
    fillet_2_edges = [part.edges().sort_by_distance(p)[0] for p in [
        (95, 8, 0),
        (0, 8, 58),
        (-95, 8, 0),
        (0, 8, -58),
        (-92.656854249, 8, 55.656854249),
        (-92.656854249, 8, -55.656854249),
        (92.656854249, 8, -55.656854249),
        (92.656854249, 8, 55.656854249),
    ]]
    fillet(fillet_2_edges, radius=FILLET_2_R)


solid = part.part
